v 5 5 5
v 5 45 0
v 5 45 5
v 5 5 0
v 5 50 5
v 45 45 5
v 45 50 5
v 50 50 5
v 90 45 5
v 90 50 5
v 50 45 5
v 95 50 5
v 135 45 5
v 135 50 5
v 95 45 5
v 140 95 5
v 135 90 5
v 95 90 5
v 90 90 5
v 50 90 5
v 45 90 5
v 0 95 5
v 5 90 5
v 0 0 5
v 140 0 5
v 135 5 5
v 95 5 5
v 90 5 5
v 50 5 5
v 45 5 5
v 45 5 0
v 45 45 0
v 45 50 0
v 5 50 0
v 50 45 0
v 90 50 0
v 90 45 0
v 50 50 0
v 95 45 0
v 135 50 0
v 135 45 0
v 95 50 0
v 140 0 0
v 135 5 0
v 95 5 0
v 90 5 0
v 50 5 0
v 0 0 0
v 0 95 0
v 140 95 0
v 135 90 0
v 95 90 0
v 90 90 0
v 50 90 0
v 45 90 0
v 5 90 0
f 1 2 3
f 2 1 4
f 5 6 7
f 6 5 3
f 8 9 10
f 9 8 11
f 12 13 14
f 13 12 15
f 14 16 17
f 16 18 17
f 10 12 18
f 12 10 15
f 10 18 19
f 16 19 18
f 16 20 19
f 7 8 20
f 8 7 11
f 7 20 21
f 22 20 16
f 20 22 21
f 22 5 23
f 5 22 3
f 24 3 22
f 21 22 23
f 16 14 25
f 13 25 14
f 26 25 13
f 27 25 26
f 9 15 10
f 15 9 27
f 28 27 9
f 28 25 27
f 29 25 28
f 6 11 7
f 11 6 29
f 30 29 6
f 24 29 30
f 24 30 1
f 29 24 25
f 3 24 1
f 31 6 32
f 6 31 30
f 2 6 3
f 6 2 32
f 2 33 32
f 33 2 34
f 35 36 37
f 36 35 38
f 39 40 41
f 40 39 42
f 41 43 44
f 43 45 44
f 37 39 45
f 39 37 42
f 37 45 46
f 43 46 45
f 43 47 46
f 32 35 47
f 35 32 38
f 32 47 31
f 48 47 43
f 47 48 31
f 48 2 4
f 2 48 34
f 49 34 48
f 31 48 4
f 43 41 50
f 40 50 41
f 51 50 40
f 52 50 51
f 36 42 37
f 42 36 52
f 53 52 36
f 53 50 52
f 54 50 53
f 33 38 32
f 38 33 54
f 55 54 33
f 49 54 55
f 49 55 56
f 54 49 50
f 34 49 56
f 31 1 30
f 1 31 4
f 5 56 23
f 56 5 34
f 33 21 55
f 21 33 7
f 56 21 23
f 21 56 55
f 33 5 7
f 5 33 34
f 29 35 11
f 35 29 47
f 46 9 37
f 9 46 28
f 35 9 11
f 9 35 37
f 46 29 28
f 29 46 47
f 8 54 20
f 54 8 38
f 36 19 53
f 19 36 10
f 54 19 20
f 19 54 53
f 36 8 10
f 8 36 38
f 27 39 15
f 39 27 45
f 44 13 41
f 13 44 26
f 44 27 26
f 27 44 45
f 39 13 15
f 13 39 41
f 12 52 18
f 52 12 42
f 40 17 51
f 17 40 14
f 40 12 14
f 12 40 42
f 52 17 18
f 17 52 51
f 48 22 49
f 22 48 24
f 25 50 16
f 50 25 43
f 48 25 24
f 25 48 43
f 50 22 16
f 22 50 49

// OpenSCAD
$fa = 1;
$fs = 0.4;

height = 50;
Xsize = 40;
Ysize = 40;
front = 0;
Xnum = 3;
Ynum = 2;
/*
difference() {
    cube([Xsize, Ysize, 5]);
    
    translate([2, 2, 2])
        cube([Xsize - 4, Ysize - 4, height - 7]);
}
*/

difference() {
    cube([(Xsize + 5) * Xnum + 5, (Ysize + 5) * Ynum + 5, 5]);

    for (i=[0: Xnum -1])
        for (j=[0: Ynum -1])
            translate([5 + i * (Xsize + 5) + front, 5 + j * (Ysize + 5) + front, 0])
                cube([Xsize - front, Ysize - front, 5]);
    }        
        
